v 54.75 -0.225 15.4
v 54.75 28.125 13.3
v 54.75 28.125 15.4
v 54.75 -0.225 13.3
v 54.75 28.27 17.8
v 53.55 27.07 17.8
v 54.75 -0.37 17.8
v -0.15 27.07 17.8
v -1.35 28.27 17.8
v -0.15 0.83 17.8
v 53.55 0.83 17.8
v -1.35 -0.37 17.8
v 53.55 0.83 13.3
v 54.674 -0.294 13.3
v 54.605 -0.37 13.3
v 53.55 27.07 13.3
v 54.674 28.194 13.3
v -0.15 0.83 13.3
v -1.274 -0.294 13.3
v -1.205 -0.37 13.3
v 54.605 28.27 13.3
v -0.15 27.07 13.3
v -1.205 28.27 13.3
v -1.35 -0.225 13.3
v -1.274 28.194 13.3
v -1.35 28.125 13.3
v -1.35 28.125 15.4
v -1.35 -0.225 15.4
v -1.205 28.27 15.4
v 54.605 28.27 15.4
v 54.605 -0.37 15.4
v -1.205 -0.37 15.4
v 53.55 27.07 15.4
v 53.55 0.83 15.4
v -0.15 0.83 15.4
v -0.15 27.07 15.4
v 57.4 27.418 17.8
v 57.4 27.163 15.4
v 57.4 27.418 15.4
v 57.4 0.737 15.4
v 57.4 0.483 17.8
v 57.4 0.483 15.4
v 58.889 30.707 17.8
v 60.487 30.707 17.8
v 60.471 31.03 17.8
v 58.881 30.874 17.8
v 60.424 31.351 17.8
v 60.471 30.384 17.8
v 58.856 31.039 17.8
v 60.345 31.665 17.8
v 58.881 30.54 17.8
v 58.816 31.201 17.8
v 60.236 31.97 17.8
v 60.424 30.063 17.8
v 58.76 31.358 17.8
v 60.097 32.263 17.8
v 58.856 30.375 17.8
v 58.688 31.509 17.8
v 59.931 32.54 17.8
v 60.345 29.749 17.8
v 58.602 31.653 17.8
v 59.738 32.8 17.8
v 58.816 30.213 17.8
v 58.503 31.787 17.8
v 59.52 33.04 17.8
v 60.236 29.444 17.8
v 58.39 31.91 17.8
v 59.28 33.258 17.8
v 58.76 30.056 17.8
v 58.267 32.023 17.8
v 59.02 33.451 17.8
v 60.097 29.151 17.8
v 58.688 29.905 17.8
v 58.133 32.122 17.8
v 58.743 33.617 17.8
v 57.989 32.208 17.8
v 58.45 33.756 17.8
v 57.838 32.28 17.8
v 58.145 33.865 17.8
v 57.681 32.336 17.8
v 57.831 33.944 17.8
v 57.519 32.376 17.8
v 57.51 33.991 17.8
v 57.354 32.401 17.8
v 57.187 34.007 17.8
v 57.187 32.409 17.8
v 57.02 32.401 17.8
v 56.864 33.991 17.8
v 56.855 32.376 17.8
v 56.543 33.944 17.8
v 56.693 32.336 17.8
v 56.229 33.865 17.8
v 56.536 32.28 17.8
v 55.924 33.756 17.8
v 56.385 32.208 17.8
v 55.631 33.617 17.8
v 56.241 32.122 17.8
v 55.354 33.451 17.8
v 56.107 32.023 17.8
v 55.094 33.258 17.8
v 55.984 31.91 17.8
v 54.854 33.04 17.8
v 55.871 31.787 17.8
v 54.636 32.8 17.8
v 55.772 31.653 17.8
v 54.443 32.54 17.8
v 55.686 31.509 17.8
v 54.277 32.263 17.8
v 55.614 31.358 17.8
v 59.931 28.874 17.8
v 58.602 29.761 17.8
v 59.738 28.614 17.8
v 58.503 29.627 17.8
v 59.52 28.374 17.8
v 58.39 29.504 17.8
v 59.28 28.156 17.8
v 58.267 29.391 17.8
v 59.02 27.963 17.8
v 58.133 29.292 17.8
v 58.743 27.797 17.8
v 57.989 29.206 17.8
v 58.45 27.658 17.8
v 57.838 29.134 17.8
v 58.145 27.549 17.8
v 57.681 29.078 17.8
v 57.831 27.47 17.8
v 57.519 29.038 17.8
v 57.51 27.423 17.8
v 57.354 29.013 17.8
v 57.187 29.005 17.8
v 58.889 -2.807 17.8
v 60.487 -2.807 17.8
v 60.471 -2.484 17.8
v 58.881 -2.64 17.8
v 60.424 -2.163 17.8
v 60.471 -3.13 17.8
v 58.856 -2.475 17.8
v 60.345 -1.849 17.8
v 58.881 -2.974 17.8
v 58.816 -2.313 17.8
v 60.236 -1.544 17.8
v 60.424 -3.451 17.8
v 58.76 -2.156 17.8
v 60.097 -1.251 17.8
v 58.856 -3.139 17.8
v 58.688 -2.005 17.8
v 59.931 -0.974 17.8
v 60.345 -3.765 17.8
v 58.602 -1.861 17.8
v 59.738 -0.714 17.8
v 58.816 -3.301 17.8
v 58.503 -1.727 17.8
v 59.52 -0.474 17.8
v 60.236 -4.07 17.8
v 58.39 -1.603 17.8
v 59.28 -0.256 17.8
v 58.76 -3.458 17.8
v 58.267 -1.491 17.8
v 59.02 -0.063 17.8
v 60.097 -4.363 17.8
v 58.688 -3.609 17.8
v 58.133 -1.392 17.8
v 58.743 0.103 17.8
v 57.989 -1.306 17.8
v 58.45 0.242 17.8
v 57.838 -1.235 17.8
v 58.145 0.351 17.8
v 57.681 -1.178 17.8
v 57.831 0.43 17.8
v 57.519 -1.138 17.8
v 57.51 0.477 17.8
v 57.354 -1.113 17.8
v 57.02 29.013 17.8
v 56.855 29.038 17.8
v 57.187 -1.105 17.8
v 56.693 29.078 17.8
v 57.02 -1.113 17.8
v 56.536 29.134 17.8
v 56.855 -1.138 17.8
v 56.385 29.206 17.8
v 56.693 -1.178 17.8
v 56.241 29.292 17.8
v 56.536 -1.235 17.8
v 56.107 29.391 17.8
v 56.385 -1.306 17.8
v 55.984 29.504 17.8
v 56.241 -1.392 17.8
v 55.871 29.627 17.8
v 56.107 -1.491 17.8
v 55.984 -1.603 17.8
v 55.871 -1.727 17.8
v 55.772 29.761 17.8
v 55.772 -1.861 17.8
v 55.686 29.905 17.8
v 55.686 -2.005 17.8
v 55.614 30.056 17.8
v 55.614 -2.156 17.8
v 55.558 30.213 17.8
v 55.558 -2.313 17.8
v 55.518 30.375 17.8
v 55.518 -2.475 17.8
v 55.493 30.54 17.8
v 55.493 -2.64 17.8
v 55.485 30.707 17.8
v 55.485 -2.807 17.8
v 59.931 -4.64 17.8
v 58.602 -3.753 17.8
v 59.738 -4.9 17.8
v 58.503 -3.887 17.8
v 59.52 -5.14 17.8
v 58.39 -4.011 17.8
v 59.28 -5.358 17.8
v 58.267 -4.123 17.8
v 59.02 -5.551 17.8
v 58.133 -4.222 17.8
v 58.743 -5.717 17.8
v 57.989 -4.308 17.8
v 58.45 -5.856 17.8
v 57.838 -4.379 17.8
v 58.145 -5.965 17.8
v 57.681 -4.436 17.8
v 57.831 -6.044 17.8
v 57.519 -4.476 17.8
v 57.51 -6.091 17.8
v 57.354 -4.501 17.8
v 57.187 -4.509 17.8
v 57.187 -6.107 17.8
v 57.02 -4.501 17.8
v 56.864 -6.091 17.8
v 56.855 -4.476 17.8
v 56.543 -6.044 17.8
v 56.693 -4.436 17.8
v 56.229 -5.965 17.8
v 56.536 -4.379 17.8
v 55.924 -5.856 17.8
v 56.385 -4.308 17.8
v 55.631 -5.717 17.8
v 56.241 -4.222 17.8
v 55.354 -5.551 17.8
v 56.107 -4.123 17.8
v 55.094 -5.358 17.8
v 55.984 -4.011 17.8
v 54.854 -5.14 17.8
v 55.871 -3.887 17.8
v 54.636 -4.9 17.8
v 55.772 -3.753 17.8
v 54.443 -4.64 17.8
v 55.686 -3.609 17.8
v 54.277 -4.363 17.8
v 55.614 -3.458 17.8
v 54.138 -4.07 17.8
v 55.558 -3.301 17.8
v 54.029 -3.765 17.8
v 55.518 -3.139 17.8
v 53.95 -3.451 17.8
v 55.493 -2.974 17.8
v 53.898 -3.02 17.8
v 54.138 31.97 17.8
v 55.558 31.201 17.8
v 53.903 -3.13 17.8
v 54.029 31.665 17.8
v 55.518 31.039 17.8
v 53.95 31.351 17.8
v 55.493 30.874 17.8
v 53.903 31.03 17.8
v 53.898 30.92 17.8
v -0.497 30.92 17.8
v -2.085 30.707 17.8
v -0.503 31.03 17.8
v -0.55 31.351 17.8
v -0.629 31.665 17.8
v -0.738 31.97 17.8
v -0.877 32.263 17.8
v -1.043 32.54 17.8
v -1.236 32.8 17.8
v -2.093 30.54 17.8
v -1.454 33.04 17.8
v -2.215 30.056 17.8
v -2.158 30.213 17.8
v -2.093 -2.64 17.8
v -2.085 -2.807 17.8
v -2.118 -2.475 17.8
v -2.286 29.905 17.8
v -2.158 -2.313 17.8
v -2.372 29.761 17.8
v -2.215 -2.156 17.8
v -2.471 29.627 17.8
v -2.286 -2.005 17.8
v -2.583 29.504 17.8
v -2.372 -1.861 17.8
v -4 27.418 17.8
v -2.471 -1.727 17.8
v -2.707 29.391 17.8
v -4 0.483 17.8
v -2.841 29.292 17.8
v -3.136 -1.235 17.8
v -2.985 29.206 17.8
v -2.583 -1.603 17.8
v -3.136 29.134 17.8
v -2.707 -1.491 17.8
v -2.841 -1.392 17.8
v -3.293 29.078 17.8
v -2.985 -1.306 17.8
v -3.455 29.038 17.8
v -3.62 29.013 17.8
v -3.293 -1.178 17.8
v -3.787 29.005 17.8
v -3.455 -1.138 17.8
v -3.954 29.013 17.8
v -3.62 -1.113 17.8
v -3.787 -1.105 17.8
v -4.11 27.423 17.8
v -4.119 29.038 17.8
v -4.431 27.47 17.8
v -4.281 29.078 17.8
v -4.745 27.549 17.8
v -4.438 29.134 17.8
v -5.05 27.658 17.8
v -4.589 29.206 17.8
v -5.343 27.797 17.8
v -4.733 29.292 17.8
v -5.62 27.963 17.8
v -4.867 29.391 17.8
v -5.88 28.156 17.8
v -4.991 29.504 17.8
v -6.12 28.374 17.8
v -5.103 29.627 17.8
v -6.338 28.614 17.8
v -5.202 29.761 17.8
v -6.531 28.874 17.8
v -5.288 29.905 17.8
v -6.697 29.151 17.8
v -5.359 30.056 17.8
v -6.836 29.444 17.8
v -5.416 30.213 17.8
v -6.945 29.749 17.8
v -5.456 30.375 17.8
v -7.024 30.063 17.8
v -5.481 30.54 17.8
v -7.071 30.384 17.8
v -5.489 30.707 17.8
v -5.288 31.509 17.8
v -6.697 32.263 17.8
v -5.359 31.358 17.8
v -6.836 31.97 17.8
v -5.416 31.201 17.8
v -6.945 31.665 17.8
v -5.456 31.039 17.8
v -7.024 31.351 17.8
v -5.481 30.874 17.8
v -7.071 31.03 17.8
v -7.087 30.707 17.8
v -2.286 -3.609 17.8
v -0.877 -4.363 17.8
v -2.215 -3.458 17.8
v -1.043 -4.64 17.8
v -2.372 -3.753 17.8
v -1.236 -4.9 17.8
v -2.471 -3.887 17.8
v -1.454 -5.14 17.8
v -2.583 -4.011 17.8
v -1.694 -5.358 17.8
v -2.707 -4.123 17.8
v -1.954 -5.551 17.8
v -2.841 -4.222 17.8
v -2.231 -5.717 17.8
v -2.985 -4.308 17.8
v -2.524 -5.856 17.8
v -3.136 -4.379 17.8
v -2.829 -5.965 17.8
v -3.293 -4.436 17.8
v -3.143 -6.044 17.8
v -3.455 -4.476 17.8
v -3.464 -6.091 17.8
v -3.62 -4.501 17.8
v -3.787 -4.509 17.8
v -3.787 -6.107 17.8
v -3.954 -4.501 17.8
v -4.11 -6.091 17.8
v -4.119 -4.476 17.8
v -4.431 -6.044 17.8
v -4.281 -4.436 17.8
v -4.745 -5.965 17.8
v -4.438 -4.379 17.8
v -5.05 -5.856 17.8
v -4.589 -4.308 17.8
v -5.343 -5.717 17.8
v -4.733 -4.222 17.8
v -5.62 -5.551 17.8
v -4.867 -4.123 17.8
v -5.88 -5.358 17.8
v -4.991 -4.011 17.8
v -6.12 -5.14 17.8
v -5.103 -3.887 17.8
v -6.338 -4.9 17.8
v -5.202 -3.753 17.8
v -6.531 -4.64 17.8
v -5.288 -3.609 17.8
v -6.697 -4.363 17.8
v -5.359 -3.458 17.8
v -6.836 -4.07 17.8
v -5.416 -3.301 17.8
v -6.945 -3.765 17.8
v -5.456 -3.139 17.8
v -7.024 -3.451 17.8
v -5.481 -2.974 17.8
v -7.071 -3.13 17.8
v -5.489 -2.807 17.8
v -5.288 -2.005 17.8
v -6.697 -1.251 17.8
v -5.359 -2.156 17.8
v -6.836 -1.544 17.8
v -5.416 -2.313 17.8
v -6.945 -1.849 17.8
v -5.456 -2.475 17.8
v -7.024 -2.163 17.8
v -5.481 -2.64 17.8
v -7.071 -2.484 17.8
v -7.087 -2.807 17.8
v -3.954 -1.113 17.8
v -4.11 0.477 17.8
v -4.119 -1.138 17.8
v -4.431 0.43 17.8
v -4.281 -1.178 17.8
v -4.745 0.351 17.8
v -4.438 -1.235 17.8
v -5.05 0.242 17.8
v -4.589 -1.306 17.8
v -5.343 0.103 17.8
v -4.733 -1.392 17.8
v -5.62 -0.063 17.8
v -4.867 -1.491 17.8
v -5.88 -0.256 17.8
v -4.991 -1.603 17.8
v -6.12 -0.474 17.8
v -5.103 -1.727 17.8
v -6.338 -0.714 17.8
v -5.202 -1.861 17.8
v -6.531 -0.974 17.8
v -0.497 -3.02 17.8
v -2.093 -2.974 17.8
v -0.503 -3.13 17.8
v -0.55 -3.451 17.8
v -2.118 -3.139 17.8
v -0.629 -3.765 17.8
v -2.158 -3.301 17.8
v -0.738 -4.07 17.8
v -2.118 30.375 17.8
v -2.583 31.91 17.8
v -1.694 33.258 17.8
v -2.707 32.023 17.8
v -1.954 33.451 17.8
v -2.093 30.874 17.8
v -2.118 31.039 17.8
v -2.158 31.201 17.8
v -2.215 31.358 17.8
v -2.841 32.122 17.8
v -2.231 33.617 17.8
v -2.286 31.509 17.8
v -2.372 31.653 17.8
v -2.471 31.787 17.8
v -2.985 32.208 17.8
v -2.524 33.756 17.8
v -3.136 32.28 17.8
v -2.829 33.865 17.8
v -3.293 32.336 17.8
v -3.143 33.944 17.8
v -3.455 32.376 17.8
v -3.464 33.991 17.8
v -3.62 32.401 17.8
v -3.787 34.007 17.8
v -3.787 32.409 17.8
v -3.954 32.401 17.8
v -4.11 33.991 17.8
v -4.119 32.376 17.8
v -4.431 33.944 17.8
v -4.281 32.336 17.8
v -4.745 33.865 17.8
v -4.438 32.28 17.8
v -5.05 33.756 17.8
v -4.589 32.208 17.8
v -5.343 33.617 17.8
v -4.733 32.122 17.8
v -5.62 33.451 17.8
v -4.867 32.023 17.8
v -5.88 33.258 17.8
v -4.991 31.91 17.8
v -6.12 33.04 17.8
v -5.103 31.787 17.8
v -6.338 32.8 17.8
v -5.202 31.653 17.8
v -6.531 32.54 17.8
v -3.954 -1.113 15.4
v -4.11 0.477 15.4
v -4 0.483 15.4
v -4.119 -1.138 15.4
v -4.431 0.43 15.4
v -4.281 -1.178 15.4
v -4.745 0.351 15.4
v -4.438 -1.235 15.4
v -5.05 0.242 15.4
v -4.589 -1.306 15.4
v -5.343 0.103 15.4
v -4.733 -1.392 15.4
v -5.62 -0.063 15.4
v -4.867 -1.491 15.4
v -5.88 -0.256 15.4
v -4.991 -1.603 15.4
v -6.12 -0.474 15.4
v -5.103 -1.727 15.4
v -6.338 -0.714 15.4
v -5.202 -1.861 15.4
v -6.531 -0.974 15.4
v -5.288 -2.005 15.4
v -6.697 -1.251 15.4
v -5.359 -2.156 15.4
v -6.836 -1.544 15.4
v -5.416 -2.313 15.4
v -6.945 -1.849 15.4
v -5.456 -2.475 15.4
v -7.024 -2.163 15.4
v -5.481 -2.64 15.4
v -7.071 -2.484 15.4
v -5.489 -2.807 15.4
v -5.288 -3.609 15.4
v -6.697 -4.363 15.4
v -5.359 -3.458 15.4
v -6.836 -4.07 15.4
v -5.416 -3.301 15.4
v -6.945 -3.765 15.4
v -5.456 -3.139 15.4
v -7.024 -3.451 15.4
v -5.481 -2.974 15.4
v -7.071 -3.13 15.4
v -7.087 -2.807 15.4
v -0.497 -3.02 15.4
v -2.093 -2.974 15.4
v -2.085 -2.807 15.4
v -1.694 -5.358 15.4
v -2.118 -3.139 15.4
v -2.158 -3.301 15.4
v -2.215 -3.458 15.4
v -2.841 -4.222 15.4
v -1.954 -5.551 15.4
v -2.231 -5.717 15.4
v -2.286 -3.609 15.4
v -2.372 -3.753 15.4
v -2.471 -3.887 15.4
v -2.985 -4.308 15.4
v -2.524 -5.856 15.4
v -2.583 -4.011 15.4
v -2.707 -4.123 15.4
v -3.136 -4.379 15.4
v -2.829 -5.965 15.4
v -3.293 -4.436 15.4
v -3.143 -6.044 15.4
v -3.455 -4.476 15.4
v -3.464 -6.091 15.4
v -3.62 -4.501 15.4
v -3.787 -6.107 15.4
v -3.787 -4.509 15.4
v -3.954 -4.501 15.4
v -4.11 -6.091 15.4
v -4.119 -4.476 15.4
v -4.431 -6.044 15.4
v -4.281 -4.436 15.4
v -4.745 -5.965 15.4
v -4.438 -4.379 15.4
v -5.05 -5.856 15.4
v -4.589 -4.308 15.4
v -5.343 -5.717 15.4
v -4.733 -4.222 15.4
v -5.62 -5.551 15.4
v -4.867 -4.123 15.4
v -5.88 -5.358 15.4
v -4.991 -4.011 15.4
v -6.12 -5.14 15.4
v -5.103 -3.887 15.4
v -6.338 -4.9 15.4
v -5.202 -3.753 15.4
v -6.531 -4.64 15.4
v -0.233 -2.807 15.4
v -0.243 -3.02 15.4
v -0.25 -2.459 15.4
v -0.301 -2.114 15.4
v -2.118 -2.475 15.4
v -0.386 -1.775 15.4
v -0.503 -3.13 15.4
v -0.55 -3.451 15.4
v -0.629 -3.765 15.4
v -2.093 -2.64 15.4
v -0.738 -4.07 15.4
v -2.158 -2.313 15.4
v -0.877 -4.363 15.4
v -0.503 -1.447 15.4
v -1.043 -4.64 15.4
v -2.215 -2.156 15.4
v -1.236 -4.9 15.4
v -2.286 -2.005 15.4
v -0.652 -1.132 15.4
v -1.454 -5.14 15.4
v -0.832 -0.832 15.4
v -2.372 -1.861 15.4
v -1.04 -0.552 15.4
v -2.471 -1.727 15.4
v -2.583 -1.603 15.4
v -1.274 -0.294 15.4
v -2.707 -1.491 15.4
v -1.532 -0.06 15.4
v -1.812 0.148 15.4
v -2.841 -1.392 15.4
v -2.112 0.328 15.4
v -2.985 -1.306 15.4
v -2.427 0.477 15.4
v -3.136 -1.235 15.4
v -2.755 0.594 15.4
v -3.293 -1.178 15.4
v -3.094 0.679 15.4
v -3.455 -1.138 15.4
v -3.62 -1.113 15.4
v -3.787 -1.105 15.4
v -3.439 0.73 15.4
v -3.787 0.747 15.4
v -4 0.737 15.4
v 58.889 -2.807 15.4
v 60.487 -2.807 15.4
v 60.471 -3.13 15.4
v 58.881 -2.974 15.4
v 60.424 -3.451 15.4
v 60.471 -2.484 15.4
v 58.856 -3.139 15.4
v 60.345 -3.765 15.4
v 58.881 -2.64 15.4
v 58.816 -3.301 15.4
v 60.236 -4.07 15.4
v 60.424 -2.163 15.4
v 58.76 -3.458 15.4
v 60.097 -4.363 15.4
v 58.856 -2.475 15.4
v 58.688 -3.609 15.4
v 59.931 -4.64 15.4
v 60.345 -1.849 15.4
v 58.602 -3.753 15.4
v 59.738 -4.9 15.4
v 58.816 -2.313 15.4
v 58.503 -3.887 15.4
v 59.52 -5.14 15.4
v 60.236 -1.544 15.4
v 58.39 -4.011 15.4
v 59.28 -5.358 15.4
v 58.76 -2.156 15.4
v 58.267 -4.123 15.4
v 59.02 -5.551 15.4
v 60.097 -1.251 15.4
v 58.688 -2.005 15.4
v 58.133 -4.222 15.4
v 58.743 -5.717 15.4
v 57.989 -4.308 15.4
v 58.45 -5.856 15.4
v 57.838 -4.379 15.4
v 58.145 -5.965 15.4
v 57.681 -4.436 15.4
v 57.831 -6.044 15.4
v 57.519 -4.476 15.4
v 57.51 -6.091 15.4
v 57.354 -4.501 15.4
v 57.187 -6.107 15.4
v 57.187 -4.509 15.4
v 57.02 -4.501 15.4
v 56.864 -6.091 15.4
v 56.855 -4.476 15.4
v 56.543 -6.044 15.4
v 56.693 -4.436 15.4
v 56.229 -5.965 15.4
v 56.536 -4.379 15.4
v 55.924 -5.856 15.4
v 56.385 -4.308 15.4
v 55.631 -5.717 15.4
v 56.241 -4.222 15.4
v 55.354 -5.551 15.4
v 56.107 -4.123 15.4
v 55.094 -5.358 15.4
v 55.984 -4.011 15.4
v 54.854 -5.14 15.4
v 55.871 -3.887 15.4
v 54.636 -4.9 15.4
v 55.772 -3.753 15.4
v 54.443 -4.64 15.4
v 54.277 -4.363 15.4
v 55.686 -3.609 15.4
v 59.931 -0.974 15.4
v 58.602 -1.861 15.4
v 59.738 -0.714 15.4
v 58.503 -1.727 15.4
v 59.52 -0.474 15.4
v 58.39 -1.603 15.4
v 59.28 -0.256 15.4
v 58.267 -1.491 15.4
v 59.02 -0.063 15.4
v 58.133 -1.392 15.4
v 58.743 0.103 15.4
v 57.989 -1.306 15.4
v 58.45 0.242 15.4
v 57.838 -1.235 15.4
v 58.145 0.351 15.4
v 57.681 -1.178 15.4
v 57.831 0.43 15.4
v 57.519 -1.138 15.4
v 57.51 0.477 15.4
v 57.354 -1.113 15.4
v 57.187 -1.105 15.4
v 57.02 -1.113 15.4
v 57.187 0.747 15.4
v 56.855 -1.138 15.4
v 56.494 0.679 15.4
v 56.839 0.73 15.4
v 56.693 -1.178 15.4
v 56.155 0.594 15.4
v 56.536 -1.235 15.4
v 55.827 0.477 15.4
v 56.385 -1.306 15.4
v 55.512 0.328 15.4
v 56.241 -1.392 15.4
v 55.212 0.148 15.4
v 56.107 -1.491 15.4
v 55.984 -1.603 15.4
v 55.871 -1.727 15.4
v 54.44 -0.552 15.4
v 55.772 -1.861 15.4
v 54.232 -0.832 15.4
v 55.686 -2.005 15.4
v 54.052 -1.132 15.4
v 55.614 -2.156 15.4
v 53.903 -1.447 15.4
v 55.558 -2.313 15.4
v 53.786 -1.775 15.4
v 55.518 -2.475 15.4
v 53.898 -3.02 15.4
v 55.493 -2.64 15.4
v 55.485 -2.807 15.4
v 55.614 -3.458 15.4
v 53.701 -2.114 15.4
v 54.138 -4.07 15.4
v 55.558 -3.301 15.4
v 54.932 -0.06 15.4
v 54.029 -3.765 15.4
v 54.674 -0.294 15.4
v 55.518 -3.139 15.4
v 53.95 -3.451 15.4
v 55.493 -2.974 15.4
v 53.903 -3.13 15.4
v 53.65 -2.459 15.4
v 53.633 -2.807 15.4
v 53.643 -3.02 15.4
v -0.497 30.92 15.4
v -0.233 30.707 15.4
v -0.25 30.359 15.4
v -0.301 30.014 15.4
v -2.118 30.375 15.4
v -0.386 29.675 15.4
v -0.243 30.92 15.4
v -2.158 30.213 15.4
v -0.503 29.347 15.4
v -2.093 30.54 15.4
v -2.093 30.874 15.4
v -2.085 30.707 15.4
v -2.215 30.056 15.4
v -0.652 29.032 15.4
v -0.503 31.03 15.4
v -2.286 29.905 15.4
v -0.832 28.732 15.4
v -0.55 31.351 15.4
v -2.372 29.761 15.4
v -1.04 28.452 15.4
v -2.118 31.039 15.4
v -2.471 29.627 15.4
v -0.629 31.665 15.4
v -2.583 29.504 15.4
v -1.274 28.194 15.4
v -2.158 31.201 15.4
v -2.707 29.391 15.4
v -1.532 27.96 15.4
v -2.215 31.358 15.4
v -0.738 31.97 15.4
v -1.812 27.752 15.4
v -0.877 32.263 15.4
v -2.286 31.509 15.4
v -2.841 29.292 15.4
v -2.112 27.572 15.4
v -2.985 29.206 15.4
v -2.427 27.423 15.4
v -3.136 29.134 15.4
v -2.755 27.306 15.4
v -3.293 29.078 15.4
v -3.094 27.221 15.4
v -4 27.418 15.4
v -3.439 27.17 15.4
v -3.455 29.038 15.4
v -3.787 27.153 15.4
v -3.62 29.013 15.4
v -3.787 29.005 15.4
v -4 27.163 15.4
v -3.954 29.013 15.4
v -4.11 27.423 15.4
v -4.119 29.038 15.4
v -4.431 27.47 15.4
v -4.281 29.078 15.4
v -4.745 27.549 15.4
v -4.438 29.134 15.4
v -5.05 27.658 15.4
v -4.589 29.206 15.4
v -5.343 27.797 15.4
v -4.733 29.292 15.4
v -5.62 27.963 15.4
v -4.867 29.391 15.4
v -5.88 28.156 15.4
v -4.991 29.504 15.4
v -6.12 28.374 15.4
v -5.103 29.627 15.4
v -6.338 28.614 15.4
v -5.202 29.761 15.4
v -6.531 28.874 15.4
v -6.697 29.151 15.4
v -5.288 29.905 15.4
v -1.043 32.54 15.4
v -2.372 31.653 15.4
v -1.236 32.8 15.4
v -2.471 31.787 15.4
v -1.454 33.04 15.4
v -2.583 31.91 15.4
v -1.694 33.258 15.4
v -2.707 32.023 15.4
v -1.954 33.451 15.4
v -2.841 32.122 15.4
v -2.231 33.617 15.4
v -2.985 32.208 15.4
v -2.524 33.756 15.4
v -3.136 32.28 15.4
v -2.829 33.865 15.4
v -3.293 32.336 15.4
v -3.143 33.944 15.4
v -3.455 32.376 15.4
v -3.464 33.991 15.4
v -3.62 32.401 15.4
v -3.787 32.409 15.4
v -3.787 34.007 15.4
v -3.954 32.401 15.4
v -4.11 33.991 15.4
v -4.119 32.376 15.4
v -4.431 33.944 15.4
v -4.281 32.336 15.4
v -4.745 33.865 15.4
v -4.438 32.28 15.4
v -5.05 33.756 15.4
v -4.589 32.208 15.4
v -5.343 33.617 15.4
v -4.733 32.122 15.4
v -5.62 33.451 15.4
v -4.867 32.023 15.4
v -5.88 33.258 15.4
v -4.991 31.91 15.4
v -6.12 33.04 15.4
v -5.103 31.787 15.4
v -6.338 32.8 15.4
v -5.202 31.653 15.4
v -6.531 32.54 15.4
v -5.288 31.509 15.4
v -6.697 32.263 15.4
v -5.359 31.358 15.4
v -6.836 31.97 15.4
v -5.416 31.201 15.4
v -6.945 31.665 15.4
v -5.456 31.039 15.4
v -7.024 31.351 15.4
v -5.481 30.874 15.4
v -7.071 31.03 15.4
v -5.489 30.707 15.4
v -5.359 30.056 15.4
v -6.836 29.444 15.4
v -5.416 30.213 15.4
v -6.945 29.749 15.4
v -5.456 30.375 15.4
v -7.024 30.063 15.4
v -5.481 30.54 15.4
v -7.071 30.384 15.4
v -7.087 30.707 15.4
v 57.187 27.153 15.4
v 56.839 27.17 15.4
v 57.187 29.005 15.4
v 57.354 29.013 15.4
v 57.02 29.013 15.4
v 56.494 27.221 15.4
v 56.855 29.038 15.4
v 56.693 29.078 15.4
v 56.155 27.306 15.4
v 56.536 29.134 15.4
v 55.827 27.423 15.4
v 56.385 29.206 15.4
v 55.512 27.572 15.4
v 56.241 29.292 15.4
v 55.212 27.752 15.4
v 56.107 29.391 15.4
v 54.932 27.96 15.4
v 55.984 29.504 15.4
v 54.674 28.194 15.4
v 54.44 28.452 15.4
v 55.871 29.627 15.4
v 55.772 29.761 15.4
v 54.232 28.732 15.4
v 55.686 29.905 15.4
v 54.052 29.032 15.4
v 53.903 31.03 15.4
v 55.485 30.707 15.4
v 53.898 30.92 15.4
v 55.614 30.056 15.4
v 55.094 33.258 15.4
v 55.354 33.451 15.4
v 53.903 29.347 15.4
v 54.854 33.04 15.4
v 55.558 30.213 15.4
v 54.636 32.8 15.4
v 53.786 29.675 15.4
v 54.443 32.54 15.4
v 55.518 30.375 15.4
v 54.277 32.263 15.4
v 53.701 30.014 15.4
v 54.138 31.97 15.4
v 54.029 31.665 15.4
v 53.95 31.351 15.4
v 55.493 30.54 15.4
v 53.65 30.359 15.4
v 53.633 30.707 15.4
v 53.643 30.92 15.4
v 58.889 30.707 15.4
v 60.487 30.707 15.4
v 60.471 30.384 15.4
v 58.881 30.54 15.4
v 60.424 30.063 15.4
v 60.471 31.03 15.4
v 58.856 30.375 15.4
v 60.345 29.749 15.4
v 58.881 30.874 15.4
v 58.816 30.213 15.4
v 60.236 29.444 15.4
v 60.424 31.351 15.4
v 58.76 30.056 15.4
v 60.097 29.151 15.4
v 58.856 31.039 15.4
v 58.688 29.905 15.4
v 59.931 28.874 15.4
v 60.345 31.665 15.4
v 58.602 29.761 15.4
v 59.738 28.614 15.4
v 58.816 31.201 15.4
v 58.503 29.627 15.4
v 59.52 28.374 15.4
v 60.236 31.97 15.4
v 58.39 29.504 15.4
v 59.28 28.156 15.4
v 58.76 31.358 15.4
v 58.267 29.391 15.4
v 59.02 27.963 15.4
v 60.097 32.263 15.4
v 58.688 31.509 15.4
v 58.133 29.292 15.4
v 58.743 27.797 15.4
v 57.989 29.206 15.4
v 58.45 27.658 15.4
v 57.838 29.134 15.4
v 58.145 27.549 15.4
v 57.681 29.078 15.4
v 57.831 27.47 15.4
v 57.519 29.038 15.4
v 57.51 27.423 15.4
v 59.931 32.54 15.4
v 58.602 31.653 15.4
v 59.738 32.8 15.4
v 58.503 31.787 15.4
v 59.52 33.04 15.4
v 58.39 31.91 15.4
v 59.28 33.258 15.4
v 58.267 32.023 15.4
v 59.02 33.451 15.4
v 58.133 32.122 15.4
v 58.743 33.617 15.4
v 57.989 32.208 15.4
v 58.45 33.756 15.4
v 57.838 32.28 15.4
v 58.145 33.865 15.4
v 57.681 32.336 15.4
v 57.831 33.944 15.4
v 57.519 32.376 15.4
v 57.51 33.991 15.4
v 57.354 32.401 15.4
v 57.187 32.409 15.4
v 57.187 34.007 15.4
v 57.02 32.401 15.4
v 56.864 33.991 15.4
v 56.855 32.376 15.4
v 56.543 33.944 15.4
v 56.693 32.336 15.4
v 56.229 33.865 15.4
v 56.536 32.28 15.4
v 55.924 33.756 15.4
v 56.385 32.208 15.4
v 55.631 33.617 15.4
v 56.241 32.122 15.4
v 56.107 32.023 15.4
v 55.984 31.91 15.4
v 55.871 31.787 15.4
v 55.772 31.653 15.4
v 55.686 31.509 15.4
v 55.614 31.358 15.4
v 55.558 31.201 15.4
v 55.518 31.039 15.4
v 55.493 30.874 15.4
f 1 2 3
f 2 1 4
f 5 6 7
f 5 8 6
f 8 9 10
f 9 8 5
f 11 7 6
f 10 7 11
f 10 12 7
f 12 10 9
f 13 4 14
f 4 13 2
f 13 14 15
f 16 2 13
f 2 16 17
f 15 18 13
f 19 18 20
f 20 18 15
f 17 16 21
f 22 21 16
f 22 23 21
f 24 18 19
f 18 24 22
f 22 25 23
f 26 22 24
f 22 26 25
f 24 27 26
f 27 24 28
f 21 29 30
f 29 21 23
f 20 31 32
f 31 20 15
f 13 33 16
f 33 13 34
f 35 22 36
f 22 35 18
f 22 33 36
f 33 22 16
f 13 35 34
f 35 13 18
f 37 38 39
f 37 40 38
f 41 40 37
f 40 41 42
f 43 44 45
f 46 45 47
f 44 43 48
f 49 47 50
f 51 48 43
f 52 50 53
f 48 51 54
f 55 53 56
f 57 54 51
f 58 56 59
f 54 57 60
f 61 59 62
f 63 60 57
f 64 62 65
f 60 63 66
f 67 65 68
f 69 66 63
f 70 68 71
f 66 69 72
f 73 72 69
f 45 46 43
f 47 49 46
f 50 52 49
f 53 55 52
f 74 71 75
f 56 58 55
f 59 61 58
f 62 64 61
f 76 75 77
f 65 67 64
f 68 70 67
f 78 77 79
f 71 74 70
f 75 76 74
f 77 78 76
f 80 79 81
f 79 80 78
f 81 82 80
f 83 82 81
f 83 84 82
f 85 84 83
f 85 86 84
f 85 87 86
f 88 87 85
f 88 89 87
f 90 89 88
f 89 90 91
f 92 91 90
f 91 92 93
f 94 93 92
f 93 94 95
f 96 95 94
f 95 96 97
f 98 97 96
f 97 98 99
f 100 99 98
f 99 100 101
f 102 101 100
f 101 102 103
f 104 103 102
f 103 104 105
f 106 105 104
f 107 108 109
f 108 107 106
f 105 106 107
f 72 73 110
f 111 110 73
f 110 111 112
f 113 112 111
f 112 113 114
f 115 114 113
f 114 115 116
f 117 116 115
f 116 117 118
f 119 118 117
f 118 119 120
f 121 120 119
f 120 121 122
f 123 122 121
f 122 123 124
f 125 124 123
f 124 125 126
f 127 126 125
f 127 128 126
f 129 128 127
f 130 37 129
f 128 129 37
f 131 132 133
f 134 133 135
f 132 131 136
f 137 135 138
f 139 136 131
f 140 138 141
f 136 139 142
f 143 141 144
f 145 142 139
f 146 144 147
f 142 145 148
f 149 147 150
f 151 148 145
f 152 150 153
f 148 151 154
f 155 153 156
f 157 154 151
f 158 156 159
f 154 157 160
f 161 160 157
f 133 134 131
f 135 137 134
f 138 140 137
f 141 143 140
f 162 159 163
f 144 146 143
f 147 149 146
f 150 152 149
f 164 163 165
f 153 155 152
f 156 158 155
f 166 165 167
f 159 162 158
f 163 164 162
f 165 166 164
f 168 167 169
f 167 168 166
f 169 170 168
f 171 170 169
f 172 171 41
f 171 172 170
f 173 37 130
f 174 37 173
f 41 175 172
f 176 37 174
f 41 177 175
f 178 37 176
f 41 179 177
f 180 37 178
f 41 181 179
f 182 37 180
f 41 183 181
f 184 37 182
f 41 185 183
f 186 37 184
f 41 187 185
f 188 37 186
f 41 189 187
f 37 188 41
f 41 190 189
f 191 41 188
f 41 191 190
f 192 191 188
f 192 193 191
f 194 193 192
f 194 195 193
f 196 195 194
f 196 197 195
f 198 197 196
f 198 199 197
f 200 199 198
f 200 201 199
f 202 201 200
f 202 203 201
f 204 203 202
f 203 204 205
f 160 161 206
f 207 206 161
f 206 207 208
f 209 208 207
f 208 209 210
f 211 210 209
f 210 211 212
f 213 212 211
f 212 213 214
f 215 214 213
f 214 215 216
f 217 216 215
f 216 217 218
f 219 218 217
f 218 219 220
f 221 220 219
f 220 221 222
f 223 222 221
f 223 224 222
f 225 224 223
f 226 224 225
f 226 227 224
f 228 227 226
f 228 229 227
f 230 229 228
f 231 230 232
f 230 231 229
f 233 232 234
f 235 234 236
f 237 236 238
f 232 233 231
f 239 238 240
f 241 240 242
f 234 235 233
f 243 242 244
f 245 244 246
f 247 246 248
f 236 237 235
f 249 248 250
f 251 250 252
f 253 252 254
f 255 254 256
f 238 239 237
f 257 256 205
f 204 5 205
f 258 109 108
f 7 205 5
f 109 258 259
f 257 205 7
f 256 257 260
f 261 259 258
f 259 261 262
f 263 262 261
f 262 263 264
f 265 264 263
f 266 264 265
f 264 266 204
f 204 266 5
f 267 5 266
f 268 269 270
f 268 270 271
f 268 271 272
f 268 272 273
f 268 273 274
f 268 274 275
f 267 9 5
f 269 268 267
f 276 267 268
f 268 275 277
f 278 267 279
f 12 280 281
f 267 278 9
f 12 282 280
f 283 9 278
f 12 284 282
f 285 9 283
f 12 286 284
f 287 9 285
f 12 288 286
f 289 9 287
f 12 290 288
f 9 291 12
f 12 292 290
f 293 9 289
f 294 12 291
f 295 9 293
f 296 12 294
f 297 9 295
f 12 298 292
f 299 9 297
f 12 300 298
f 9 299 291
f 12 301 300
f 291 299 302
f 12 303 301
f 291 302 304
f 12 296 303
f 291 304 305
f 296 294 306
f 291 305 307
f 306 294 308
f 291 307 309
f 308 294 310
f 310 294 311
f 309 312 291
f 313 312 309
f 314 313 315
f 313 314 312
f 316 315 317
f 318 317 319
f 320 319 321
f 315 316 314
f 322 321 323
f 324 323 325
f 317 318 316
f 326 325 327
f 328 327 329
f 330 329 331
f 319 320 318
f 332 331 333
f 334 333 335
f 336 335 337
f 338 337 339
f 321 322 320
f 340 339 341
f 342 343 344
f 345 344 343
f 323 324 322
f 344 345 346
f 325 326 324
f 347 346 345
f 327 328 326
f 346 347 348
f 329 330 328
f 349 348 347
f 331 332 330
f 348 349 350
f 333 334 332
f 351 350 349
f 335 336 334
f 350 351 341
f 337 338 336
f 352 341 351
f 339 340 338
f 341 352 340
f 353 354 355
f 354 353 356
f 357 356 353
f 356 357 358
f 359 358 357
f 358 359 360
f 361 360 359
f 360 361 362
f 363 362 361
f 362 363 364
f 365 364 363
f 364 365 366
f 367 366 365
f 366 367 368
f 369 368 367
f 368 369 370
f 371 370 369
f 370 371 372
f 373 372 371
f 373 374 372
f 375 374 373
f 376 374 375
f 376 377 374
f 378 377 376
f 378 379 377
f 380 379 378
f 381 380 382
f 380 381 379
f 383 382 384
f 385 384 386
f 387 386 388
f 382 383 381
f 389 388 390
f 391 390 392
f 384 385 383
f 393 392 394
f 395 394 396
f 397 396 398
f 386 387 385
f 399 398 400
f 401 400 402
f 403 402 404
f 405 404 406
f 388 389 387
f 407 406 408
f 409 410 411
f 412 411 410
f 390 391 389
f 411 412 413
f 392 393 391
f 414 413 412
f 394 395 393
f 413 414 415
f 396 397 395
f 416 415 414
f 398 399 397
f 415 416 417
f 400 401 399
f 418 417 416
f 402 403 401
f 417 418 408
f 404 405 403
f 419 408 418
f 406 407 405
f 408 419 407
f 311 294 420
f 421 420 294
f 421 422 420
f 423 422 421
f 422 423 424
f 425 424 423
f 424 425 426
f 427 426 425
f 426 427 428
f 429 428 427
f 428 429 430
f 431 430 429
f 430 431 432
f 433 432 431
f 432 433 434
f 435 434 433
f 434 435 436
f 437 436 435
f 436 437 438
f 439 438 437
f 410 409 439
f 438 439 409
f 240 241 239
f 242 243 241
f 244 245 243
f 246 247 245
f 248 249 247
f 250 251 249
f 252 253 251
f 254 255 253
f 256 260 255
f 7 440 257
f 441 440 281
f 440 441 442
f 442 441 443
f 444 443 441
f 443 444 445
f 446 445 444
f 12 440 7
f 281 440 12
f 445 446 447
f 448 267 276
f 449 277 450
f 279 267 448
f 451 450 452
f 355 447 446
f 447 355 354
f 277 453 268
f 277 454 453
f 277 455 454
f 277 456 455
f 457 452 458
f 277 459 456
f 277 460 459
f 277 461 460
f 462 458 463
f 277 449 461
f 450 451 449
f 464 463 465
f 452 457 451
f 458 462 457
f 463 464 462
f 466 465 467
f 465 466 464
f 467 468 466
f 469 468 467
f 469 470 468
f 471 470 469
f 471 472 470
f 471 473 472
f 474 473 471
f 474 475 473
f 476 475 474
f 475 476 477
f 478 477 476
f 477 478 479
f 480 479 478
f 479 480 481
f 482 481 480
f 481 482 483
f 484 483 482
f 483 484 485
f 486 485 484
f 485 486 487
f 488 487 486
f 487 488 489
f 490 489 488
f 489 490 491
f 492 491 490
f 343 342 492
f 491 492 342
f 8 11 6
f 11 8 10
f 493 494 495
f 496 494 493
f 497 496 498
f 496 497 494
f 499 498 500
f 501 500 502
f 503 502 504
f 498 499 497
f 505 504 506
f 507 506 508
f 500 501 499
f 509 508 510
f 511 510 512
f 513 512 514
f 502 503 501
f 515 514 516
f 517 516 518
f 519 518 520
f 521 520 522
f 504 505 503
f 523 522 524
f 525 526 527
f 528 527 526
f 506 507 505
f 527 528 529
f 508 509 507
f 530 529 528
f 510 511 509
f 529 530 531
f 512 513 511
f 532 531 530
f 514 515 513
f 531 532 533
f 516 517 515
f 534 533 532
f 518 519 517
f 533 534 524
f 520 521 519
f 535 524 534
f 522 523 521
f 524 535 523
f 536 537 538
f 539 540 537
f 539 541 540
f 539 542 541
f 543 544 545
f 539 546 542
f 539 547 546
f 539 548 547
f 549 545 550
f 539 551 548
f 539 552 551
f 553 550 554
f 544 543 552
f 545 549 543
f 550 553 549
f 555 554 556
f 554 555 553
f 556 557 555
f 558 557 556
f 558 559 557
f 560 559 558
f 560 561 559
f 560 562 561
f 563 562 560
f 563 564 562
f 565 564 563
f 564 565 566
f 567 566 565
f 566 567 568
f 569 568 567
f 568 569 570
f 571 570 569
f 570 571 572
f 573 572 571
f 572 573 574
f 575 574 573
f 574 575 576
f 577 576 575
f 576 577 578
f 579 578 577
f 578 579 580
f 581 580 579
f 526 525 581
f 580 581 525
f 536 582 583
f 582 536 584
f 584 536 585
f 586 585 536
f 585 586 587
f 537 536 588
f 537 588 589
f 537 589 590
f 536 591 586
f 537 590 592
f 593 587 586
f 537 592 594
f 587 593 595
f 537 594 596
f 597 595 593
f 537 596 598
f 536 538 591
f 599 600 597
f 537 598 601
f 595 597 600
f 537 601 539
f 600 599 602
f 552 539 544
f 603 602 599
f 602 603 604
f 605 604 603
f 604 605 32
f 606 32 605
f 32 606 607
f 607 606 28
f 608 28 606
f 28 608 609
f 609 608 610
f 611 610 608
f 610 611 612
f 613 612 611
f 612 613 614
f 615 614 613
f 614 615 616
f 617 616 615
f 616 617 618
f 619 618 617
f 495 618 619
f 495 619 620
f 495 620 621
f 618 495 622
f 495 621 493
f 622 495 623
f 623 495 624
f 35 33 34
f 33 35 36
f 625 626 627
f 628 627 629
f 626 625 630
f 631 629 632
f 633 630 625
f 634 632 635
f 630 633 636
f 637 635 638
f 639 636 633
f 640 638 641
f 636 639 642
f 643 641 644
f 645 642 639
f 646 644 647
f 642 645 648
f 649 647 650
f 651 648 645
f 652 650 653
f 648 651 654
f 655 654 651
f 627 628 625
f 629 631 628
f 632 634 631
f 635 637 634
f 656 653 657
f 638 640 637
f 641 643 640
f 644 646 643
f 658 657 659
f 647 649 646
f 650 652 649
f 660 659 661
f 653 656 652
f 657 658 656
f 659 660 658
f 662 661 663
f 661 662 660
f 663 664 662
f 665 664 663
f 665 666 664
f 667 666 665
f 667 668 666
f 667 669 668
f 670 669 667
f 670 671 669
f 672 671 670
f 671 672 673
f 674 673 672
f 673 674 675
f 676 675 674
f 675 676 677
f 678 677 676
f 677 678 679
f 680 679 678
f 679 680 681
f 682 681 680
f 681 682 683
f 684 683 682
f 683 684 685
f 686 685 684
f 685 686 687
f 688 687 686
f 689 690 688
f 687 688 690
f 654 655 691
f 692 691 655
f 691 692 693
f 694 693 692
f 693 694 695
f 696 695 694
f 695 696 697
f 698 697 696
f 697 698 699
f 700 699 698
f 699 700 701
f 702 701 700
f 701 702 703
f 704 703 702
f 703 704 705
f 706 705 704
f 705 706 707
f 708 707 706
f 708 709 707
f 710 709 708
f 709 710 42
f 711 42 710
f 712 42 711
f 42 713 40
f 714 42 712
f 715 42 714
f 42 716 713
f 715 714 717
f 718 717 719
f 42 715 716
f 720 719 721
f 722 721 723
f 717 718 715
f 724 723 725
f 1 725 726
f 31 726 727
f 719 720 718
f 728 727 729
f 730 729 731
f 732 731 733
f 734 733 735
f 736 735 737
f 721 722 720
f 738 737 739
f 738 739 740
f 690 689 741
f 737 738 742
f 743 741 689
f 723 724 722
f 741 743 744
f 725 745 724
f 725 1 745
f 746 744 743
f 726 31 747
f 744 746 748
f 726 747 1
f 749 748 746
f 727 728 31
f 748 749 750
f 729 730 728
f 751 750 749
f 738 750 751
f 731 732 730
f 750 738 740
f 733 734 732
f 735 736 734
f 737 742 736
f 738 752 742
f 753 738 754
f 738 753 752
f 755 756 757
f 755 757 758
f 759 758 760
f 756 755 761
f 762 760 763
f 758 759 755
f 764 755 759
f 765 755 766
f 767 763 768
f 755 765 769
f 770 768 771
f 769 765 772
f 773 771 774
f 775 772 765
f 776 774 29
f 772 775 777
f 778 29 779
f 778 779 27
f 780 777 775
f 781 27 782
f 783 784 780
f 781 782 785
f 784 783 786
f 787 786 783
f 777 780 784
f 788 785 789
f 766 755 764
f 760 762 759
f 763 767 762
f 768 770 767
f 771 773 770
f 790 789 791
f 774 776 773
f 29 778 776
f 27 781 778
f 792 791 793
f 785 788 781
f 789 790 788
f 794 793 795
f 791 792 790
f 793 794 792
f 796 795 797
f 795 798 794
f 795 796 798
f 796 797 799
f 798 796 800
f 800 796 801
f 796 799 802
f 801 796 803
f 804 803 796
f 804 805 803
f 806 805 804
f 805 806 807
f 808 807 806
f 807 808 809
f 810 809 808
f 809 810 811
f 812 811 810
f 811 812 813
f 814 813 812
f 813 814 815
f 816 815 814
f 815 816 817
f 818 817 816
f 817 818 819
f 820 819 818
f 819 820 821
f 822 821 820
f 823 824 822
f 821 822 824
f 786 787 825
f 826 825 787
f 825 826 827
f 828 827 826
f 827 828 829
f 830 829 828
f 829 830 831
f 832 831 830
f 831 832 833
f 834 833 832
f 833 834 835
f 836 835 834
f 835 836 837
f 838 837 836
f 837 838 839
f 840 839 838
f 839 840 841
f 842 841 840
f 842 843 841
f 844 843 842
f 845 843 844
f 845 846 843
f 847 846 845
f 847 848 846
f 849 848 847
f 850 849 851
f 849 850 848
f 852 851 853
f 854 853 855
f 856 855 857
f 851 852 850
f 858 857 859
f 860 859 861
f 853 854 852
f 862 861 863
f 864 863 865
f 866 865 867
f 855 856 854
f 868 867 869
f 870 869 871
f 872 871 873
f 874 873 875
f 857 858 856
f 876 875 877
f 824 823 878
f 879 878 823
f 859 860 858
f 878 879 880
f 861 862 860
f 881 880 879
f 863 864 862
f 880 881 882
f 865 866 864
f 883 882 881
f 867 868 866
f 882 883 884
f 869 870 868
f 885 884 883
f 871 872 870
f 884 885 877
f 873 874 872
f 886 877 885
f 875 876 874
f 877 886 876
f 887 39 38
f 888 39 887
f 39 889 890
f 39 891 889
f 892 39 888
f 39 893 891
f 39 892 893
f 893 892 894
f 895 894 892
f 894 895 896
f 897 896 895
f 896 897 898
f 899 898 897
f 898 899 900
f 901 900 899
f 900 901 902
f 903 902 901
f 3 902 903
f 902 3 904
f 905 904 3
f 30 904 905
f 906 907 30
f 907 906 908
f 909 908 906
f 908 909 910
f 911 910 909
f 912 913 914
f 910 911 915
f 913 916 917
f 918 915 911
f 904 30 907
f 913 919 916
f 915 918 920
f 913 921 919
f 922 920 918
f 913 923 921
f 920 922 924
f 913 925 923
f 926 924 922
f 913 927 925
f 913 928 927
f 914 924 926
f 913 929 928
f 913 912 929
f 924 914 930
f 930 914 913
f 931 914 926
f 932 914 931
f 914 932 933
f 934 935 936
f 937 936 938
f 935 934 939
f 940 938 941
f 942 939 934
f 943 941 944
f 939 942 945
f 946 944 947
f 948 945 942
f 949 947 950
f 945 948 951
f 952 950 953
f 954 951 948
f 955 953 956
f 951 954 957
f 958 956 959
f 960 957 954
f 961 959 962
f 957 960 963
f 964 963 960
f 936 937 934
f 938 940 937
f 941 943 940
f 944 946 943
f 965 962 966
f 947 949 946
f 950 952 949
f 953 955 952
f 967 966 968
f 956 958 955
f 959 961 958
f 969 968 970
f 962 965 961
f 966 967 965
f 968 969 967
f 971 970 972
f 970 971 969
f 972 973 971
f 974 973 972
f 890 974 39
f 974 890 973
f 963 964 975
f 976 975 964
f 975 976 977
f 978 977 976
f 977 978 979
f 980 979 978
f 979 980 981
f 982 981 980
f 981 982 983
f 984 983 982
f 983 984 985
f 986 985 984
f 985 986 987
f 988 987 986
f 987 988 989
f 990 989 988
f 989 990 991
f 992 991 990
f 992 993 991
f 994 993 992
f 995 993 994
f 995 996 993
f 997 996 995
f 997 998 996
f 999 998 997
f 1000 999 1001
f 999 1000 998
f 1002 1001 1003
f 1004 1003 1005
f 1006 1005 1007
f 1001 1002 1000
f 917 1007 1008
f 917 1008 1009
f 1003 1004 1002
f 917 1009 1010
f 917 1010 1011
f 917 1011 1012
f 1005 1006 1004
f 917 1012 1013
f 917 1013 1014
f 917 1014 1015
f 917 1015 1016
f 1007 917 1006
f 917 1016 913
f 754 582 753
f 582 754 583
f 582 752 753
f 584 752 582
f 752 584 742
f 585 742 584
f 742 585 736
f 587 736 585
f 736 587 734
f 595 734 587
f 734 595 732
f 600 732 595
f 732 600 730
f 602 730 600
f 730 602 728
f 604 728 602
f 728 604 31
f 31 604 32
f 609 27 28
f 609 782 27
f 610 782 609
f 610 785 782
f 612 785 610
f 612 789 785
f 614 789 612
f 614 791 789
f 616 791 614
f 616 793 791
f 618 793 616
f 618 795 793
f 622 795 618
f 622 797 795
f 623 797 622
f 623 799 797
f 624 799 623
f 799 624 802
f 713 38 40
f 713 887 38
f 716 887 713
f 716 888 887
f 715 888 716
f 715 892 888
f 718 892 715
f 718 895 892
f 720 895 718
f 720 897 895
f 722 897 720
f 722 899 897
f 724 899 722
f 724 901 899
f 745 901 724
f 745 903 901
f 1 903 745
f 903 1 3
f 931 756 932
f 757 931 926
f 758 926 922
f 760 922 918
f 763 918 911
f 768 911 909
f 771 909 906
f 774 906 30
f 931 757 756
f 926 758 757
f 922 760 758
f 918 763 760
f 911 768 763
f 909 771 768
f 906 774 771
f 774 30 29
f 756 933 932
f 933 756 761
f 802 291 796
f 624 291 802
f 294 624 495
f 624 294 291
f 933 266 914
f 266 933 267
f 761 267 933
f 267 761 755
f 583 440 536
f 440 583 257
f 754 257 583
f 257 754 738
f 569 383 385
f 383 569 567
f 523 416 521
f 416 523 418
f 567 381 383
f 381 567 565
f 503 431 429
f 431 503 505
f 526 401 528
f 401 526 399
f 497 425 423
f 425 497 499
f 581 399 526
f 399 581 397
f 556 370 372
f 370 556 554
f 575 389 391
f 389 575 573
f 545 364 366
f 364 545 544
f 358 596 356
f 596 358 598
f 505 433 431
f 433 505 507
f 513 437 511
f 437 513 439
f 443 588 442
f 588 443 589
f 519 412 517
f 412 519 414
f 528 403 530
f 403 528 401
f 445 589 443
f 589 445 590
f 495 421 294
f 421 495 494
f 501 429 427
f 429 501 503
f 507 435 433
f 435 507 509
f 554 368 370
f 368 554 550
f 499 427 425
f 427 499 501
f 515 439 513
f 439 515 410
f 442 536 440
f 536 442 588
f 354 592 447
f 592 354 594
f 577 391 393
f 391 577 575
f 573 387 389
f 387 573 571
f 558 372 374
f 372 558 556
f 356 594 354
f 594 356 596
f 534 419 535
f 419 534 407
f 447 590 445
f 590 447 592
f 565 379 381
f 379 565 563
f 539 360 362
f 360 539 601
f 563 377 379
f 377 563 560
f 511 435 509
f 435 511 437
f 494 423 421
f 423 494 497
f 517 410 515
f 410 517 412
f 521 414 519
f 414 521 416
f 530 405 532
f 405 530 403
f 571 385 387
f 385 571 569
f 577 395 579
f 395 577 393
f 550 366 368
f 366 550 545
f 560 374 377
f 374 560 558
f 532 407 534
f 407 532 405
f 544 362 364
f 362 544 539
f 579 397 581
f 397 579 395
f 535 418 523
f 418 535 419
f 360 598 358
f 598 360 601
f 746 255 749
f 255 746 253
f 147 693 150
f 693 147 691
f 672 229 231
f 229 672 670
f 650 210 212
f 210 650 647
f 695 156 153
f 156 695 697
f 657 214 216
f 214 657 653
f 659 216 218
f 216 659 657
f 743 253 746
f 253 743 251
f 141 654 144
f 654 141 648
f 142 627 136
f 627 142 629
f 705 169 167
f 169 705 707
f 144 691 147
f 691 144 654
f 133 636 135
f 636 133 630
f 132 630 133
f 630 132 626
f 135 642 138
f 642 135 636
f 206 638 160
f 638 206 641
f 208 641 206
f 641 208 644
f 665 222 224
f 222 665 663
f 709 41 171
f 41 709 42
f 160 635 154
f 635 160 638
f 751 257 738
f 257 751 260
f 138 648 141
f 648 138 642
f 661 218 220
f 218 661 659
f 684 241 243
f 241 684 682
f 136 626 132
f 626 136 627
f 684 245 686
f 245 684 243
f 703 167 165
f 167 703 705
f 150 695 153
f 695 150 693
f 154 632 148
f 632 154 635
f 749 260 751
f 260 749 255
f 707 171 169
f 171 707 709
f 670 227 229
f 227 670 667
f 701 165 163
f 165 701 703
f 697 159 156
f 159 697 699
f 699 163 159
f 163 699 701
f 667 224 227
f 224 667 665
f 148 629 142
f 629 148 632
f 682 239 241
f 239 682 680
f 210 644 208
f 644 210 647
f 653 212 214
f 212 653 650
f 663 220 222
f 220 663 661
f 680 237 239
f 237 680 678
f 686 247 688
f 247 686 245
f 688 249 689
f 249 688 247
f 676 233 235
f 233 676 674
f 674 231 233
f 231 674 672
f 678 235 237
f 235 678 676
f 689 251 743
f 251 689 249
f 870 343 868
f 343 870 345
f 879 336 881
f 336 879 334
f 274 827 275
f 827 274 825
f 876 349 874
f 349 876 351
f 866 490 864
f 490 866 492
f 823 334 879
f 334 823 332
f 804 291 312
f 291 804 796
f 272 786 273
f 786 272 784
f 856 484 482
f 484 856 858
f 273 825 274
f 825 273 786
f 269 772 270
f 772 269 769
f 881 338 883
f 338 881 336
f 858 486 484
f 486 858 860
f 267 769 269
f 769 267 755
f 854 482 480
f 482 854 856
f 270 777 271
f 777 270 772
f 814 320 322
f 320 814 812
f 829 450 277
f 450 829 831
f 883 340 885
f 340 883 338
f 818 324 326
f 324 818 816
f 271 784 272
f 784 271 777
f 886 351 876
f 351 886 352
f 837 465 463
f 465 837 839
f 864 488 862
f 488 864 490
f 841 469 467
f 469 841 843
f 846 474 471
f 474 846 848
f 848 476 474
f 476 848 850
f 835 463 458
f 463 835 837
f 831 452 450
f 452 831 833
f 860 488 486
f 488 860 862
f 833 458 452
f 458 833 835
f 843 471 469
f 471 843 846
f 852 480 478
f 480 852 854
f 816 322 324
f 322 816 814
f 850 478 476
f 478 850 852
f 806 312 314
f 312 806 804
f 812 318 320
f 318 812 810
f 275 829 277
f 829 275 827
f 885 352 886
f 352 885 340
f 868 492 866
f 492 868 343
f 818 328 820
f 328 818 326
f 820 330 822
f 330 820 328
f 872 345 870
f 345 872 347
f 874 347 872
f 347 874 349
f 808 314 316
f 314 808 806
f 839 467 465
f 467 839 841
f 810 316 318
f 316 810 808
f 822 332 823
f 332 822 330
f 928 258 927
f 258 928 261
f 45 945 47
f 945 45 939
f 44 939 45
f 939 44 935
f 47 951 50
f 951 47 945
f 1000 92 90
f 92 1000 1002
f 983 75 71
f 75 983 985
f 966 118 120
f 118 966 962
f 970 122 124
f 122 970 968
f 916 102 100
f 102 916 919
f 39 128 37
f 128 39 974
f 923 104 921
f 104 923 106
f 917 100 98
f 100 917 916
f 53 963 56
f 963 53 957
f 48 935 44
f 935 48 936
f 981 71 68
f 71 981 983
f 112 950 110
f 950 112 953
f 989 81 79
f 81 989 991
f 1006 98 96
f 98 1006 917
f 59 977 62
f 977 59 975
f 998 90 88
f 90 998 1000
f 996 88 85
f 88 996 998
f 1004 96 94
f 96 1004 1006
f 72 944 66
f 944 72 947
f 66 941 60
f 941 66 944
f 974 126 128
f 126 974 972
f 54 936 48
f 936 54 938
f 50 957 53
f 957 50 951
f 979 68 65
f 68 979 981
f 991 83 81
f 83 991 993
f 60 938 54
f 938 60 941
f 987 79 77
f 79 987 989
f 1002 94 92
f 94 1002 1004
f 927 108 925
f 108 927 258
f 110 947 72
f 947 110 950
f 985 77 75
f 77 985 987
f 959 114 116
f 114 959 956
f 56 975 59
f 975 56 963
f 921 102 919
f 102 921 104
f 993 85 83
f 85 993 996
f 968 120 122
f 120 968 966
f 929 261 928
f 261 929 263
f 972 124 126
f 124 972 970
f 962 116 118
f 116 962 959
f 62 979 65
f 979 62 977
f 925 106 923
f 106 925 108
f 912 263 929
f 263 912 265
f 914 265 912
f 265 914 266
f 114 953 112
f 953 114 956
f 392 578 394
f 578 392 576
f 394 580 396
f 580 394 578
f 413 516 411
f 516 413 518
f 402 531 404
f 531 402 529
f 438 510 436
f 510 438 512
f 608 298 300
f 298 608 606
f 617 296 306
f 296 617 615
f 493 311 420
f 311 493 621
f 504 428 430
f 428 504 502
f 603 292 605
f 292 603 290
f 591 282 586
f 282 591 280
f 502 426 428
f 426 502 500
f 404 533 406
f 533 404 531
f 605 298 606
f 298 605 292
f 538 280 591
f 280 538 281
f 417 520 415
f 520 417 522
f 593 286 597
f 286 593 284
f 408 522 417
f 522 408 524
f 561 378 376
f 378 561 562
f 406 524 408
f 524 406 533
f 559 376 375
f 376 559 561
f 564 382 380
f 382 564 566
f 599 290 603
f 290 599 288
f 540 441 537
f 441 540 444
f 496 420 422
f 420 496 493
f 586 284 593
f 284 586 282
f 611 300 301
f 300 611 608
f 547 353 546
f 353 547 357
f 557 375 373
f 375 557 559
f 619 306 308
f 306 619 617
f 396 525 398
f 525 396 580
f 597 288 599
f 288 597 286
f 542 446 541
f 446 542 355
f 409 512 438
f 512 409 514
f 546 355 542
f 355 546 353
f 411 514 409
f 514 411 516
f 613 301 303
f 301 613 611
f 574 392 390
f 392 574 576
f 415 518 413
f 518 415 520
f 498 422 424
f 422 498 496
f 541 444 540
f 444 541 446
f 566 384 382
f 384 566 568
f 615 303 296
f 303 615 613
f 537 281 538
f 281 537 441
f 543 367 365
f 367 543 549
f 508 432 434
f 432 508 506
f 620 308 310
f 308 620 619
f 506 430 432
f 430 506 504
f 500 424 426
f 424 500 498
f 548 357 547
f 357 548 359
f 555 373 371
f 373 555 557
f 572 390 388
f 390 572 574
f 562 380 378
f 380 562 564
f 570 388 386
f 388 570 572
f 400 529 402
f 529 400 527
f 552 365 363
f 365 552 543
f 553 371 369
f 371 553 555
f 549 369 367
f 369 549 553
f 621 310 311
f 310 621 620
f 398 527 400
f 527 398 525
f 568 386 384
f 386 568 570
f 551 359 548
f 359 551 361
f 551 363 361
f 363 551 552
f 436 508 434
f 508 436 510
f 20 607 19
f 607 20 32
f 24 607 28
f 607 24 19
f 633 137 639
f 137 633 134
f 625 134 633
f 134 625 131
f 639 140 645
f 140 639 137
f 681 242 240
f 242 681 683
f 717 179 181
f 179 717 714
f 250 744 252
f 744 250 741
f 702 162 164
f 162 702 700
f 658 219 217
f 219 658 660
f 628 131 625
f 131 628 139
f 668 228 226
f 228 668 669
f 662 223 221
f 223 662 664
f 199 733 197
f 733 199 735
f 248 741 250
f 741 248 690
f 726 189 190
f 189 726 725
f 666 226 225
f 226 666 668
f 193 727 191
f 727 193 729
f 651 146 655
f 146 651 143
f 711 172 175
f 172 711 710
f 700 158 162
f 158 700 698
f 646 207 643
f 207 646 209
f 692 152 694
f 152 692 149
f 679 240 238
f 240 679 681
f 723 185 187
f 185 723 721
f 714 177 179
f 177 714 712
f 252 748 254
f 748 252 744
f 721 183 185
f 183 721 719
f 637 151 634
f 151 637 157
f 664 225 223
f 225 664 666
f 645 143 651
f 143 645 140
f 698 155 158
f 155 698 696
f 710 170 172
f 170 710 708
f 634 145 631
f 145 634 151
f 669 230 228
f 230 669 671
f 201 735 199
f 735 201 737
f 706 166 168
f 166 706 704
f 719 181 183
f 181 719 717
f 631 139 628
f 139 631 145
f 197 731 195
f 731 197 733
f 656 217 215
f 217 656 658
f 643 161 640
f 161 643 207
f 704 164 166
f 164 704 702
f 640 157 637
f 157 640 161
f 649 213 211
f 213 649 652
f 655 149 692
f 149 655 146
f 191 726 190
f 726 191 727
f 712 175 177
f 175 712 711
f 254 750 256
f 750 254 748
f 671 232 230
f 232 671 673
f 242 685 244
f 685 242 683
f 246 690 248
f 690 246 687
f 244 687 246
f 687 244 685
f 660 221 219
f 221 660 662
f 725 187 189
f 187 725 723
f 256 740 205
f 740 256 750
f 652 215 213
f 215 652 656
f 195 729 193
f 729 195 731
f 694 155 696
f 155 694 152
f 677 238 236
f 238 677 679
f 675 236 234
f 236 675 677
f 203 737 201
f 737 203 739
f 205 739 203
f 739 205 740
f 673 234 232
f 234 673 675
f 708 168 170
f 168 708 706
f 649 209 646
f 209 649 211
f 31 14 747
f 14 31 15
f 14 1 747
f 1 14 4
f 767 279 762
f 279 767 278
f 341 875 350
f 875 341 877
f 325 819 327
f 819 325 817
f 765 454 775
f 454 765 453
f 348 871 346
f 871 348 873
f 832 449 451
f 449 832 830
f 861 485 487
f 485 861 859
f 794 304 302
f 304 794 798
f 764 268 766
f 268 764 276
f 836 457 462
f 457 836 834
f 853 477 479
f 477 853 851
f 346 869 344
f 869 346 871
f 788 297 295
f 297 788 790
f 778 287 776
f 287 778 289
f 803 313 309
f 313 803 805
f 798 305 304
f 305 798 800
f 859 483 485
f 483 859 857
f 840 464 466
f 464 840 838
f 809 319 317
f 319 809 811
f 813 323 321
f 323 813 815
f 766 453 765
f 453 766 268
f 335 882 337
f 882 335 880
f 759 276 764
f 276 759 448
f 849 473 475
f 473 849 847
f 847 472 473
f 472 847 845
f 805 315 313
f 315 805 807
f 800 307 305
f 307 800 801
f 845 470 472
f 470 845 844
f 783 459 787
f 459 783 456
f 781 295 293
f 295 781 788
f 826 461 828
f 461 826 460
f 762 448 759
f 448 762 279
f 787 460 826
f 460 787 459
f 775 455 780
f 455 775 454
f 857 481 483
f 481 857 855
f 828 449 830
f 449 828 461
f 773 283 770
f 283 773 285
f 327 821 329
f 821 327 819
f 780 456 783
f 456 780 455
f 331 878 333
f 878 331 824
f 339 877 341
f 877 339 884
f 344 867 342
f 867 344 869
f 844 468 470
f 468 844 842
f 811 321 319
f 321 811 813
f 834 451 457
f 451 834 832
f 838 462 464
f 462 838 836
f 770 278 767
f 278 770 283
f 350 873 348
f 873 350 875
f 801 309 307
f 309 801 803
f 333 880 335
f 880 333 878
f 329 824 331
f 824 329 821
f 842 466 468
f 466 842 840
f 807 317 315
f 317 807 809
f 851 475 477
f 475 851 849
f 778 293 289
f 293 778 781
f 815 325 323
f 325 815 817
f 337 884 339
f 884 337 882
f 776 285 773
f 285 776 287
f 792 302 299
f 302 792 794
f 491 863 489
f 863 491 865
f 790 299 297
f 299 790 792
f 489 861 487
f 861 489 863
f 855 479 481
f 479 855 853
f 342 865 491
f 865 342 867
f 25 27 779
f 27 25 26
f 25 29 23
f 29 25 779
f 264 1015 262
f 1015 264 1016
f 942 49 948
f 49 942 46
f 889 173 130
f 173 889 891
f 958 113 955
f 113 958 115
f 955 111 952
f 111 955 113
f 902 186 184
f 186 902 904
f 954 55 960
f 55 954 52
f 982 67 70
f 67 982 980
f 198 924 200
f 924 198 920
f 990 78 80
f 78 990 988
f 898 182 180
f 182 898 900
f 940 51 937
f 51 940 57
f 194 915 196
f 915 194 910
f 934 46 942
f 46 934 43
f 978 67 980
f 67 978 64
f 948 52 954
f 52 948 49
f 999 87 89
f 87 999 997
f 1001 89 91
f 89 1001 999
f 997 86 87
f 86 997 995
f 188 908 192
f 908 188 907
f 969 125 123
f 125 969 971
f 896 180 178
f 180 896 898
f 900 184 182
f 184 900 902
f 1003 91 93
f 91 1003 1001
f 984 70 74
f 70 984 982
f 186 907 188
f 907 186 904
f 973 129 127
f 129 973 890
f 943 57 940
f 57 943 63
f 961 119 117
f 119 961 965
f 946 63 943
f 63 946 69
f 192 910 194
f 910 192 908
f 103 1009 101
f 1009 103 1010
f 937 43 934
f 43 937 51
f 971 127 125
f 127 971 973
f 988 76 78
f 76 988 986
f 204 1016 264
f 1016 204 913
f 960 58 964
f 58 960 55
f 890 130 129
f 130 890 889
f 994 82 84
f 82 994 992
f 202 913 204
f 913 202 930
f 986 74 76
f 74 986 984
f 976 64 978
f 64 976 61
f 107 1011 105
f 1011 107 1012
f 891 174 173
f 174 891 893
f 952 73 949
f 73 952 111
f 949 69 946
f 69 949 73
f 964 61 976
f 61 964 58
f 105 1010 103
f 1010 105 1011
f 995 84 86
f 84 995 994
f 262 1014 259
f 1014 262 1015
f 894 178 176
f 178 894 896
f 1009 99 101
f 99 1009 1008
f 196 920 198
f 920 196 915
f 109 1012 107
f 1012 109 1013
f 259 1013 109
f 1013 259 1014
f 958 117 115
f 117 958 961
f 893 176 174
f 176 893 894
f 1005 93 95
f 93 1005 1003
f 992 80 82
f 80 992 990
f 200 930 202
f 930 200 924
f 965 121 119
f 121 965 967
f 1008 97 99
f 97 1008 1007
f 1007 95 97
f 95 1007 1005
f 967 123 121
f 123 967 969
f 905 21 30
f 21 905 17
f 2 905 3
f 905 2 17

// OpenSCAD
// body lid
difference() {
  union() {
    // body lid (lid_plate)
    multmatrix([[1, 0, 0, 26.7], [0, 1, 0, 13.95], [0, 0, 1, 15.4], [0, 0, 0, 1]]) translate([-30.7, -16.97, 0]) cube([61.4, 33.94, 2.4]);
    // add lid_lip (lip)
    multmatrix([[1, 0, 0, 26.7], [0, 1, 0, 13.95], [0, 0, 1, 13.3], [0, 0, 0, 1]]) difference() { translate([-28.05, -14.32, 0]) cube([56.1, 28.64, 4.5]); translate([0, 0, -1]) translate([-26.85, -13.12, 0]) cube([53.7, 26.24, 6.5]); }
    // add boss_1_pad (pad)
    multmatrix([[1, 0, 0, -3.787006], [0, 1, 0, -2.807006], [0, 0, 1, 15.4], [0, 0, 0, 1]]) cylinder(h=2.4, d=6.6, $fn=64);
    // add boss_2_pad (pad)
    multmatrix([[1, 0, 0, 57.187006], [0, 1, 0, -2.807006], [0, 0, 1, 15.4], [0, 0, 0, 1]]) cylinder(h=2.4, d=6.6, $fn=64);
    // add boss_3_pad (pad)
    multmatrix([[1, 0, 0, -3.787006], [0, 1, 0, 30.707006], [0, 0, 1, 15.4], [0, 0, 0, 1]]) cylinder(h=2.4, d=6.6, $fn=64);
    // add boss_4_pad (pad)
    multmatrix([[1, 0, 0, 57.187006], [0, 1, 0, 30.707006], [0, 0, 1, 15.4], [0, 0, 0, 1]]) cylinder(h=2.4, d=6.6, $fn=64);
  }
  // cut boss_1_lid_hole (screw_hole)
  multmatrix([[1, 0, 0, -3.787006], [0, 1, 0, -2.807006], [0, 0, 1, 14.4], [0, 0, 0, 1]]) cylinder(h=4.4, d=3.4041, $fn=64);
  // cut boss_1_lip_notch (lip_notch)
  multmatrix([[1, 0, 0, -3.787006], [0, 1, 0, -2.807006], [0, 0, 1, 12.3], [0, 0, 0, 1]]) cylinder(h=3.1, d=7.108563, $fn=64);
  // cut boss_2_lid_hole (screw_hole)
  multmatrix([[1, 0, 0, 57.187006], [0, 1, 0, -2.807006], [0, 0, 1, 14.4], [0, 0, 0, 1]]) cylinder(h=4.4, d=3.4041, $fn=64);
  // cut boss_2_lip_notch (lip_notch)
  multmatrix([[1, 0, 0, 57.187006], [0, 1, 0, -2.807006], [0, 0, 1, 12.3], [0, 0, 0, 1]]) cylinder(h=3.1, d=7.108563, $fn=64);
  // cut boss_3_lid_hole (screw_hole)
  multmatrix([[1, 0, 0, -3.787006], [0, 1, 0, 30.707006], [0, 0, 1, 14.4], [0, 0, 0, 1]]) cylinder(h=4.4, d=3.4041, $fn=64);
  // cut boss_3_lip_notch (lip_notch)
  multmatrix([[1, 0, 0, -3.787006], [0, 1, 0, 30.707006], [0, 0, 1, 12.3], [0, 0, 0, 1]]) cylinder(h=3.1, d=7.108563, $fn=64);
  // cut boss_4_lid_hole (screw_hole)
  multmatrix([[1, 0, 0, 57.187006], [0, 1, 0, 30.707006], [0, 0, 1, 14.4], [0, 0, 0, 1]]) cylinder(h=4.4, d=3.4041, $fn=64);
  // cut boss_4_lip_notch (lip_notch)
  multmatrix([[1, 0, 0, 57.187006], [0, 1, 0, 30.707006], [0, 0, 1, 12.3], [0, 0, 0, 1]]) cylinder(h=3.1, d=7.108563, $fn=64);
}
